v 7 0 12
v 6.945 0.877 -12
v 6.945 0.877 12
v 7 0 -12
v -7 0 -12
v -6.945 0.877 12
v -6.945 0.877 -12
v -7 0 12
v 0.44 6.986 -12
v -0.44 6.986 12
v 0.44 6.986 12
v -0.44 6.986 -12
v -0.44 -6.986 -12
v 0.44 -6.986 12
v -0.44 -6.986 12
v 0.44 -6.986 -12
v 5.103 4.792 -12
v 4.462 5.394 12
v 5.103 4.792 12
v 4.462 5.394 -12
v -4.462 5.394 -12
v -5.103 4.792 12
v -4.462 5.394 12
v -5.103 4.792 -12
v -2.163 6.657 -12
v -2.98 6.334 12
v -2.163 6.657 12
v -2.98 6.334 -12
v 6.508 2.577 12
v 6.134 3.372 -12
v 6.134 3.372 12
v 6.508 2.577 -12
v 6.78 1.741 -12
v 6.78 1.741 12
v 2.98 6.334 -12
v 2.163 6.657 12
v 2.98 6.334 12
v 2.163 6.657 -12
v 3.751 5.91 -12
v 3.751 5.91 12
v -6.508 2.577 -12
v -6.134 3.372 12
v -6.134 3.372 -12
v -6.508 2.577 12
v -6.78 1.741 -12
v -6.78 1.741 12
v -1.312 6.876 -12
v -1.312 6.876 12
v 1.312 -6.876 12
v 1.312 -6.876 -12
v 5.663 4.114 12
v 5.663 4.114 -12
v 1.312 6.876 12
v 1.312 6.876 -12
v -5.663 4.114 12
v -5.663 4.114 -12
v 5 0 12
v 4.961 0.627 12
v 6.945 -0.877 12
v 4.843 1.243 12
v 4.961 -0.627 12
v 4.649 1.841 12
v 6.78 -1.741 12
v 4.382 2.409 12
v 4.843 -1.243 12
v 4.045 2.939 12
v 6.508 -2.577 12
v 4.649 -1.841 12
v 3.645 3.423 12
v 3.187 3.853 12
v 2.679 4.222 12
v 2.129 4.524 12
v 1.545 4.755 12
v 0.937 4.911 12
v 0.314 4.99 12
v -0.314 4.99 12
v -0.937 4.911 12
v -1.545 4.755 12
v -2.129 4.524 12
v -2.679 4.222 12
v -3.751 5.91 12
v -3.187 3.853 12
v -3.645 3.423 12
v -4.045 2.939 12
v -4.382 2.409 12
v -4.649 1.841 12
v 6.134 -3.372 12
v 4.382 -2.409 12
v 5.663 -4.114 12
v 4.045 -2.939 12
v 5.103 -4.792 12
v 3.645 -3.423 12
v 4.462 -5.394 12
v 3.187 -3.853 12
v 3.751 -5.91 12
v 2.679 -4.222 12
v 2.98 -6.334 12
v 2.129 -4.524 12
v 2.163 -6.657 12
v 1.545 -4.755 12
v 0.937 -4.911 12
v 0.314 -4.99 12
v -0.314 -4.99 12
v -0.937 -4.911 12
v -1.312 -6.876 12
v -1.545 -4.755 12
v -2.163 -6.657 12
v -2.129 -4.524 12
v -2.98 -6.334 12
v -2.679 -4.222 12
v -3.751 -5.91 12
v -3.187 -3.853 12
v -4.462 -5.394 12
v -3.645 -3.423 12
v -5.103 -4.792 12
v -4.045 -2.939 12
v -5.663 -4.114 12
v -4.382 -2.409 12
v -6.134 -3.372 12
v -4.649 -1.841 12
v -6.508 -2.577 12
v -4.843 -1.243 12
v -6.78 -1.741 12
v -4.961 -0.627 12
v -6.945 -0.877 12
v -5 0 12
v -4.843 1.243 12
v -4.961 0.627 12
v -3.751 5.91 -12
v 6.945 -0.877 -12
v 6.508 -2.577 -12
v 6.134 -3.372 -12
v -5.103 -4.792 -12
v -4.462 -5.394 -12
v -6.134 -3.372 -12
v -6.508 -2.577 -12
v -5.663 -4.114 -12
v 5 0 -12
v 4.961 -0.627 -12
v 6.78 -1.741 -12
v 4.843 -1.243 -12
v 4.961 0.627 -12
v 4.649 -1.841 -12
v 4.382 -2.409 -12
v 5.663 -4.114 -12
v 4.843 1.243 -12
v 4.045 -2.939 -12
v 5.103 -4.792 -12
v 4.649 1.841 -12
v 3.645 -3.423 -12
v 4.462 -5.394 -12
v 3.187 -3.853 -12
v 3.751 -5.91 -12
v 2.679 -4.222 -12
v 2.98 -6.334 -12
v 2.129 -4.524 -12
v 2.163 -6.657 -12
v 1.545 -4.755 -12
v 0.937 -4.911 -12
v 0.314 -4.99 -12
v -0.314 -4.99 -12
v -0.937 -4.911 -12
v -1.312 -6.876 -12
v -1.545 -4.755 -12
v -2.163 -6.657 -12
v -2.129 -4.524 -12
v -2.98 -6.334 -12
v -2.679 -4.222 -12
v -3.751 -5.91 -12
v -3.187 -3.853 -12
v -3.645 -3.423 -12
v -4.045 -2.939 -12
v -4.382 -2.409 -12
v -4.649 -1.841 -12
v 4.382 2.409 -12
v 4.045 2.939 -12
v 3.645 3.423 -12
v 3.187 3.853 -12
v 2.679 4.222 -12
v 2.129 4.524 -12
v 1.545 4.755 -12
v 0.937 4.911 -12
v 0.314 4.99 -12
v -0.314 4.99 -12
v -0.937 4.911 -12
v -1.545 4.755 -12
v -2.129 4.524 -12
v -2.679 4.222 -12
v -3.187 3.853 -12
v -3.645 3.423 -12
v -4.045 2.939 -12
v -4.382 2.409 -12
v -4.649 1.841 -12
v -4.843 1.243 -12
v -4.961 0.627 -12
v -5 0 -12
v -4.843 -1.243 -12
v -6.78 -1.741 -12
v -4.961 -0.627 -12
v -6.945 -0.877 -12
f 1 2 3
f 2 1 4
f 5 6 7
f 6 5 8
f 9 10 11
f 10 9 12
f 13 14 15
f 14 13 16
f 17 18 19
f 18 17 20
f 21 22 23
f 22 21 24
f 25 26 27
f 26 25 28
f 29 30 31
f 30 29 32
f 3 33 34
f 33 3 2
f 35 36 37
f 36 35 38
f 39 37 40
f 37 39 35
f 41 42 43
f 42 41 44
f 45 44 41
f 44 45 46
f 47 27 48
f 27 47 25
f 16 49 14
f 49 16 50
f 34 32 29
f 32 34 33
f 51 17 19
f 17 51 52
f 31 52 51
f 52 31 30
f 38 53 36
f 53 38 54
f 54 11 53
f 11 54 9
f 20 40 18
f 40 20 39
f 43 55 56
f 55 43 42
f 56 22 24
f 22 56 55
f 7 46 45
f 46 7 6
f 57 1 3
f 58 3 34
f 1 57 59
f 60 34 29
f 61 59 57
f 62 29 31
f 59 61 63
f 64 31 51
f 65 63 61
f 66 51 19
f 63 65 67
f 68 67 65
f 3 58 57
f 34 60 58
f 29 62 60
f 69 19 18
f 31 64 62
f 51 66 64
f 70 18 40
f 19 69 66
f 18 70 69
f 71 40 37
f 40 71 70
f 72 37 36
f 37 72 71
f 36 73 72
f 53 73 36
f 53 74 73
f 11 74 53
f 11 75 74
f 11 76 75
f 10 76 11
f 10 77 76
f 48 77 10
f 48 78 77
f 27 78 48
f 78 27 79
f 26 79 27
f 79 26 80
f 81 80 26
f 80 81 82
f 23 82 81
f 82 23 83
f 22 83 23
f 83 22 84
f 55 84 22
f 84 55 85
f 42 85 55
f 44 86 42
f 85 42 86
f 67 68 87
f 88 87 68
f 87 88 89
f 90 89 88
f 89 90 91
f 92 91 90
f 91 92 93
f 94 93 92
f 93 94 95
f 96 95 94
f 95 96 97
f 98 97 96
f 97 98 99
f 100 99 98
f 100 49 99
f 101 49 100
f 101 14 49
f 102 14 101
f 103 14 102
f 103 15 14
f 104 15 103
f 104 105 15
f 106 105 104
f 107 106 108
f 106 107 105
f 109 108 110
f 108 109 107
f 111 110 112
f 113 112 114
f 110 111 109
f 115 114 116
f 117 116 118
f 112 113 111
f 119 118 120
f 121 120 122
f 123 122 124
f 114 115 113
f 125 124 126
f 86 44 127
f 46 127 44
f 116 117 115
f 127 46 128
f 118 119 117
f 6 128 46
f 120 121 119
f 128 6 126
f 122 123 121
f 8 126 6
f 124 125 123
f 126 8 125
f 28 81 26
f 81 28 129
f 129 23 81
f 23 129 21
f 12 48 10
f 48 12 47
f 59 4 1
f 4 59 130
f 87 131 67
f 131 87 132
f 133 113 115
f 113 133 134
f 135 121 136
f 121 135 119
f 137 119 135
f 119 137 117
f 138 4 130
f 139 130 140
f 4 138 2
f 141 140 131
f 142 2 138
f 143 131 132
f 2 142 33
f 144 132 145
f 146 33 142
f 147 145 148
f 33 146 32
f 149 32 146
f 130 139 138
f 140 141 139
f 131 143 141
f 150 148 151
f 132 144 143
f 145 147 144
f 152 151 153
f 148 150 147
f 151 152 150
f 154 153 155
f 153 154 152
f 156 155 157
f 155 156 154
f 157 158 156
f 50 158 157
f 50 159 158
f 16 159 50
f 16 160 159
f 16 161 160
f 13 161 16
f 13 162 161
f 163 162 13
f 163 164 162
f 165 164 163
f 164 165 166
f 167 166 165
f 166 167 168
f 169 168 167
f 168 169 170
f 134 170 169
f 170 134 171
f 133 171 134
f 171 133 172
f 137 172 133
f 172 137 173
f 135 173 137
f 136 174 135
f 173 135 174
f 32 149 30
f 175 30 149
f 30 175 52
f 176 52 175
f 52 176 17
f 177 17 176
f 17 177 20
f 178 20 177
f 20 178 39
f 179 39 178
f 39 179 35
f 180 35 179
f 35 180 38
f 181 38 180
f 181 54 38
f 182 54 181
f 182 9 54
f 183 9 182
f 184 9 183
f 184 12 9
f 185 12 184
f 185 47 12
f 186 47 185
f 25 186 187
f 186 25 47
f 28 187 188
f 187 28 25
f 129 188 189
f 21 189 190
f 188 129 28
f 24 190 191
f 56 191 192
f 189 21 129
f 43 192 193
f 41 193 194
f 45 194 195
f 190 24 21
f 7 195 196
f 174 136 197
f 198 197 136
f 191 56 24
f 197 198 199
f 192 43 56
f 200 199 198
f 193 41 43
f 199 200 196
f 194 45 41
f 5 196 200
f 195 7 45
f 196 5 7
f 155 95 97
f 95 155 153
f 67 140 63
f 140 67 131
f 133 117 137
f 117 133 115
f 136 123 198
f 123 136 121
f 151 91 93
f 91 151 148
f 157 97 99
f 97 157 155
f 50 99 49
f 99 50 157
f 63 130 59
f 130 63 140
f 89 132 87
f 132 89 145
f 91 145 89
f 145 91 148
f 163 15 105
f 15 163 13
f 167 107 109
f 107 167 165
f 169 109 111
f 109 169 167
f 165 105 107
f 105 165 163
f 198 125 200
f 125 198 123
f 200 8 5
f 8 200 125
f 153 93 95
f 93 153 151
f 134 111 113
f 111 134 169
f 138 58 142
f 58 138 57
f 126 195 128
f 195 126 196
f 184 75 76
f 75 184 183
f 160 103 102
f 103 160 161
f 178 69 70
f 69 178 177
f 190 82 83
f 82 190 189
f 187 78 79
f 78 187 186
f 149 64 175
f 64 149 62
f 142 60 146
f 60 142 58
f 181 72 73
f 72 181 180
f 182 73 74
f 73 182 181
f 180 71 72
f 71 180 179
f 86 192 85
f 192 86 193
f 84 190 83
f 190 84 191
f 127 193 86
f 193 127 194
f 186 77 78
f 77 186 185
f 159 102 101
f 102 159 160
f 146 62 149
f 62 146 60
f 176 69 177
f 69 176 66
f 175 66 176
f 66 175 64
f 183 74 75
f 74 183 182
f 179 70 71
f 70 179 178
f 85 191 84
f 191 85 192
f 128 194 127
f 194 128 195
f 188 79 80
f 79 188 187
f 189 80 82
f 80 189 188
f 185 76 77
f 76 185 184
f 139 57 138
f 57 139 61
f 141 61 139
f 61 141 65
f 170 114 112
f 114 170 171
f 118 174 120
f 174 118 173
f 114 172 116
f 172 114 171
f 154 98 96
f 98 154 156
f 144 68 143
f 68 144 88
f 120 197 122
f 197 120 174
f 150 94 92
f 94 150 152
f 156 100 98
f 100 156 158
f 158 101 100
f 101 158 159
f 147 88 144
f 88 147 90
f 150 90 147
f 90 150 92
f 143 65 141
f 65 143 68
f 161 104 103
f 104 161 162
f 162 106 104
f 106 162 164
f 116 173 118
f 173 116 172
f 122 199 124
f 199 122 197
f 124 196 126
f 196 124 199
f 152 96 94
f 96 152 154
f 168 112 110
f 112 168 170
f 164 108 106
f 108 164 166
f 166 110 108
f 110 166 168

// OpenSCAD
$fn = 50;


difference() {
	union() {
		translate(v = [0, 0, -12.0000000000]) {
			cylinder(h = 24, r = 7.0000000000);
		}
	}
	union() {
		translate(v = [0, 0, -100.0000000000]) {
			cylinder(h = 200, r = 5.0000000000);
		}
	}
}
